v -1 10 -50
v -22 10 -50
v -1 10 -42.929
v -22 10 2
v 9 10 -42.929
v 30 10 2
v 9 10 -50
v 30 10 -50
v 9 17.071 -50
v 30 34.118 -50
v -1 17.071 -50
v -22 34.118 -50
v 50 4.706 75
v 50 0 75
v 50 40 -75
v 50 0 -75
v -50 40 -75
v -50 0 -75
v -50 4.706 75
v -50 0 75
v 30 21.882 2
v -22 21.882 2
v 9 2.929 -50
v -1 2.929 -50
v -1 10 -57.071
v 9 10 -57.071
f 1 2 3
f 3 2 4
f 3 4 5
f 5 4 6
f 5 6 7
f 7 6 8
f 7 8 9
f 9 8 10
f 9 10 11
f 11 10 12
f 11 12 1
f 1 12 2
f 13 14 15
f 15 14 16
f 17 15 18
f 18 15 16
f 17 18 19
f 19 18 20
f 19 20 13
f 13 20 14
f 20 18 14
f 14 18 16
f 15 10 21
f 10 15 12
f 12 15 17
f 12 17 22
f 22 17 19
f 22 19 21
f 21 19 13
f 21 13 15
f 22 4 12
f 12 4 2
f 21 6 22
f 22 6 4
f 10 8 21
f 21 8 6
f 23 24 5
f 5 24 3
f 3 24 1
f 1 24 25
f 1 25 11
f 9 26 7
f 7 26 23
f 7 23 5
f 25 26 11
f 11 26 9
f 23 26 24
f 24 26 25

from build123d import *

# Parameters (mm, degrees)
SKETCH1_W               = 100
SKETCH1_H               = 150
BOSS_EXTRUDE1_DEPTH     = 40
SKETCH3_W               = 52
SKETCH3_H               = 52
CUT_EXTRUDE2_DEPTH      = 30
CUT_EXTRUDE1_DEPTH      = 132.244047484
CUT_EXTRUDE5_DEPTH      = 10
CUT_EXTRUDE5_DEPTH_BACK = 5
SKETCH4_W               = 10
SKETCH4_H               = 10


with BuildPart() as part:
    # Sketch1 → Boss-Extrude1 (new body)
    with BuildSketch(Plane(origin=(0, 0, 0), x_dir=(1, 0, 0), z_dir=(0, 1, 0))):
        Rectangle(SKETCH1_W, SKETCH1_H)
    extrude(amount=BOSS_EXTRUDE1_DEPTH)

    # Sketch3 → Cut-Extrude2 (cut)
    with BuildSketch(Plane(origin=(0, 40, 0), x_dir=(1, 0, 0), z_dir=(0, 1, 0))):
        with Locations((4, 24)):
            Rectangle(SKETCH3_W, SKETCH3_H)
    extrude(amount=-CUT_EXTRUDE2_DEPTH, mode=Mode.SUBTRACT)

    # Sketch2 → Cut-Extrude1 (cut, through all)
    with BuildSketch(Plane(origin=(50, 0, 0), x_dir=(0, 0, -1), z_dir=(1, 0, 0))):
        Polygon((75, 40), (-95, 0), (-95, 40), align=None)
    extrude(amount=-CUT_EXTRUDE1_DEPTH, mode=Mode.SUBTRACT)

    # Sketch4 → Cut-Extrude5 (cut, two sides: drawn at the far end of the back side and taken through both)
    with BuildSketch(Plane(origin=(0, -20, -20), x_dir=(-1, 0, 0), z_dir=(0, 0.7071067811865477, 0.7071067811865475)).offset(-CUT_EXTRUDE5_DEPTH_BACK)):
        with Locations((-4, -42.426406871)):
            Rectangle(SKETCH4_W, SKETCH4_H)
    extrude(amount=CUT_EXTRUDE5_DEPTH + CUT_EXTRUDE5_DEPTH_BACK, mode=Mode.SUBTRACT)


solid = part.part
